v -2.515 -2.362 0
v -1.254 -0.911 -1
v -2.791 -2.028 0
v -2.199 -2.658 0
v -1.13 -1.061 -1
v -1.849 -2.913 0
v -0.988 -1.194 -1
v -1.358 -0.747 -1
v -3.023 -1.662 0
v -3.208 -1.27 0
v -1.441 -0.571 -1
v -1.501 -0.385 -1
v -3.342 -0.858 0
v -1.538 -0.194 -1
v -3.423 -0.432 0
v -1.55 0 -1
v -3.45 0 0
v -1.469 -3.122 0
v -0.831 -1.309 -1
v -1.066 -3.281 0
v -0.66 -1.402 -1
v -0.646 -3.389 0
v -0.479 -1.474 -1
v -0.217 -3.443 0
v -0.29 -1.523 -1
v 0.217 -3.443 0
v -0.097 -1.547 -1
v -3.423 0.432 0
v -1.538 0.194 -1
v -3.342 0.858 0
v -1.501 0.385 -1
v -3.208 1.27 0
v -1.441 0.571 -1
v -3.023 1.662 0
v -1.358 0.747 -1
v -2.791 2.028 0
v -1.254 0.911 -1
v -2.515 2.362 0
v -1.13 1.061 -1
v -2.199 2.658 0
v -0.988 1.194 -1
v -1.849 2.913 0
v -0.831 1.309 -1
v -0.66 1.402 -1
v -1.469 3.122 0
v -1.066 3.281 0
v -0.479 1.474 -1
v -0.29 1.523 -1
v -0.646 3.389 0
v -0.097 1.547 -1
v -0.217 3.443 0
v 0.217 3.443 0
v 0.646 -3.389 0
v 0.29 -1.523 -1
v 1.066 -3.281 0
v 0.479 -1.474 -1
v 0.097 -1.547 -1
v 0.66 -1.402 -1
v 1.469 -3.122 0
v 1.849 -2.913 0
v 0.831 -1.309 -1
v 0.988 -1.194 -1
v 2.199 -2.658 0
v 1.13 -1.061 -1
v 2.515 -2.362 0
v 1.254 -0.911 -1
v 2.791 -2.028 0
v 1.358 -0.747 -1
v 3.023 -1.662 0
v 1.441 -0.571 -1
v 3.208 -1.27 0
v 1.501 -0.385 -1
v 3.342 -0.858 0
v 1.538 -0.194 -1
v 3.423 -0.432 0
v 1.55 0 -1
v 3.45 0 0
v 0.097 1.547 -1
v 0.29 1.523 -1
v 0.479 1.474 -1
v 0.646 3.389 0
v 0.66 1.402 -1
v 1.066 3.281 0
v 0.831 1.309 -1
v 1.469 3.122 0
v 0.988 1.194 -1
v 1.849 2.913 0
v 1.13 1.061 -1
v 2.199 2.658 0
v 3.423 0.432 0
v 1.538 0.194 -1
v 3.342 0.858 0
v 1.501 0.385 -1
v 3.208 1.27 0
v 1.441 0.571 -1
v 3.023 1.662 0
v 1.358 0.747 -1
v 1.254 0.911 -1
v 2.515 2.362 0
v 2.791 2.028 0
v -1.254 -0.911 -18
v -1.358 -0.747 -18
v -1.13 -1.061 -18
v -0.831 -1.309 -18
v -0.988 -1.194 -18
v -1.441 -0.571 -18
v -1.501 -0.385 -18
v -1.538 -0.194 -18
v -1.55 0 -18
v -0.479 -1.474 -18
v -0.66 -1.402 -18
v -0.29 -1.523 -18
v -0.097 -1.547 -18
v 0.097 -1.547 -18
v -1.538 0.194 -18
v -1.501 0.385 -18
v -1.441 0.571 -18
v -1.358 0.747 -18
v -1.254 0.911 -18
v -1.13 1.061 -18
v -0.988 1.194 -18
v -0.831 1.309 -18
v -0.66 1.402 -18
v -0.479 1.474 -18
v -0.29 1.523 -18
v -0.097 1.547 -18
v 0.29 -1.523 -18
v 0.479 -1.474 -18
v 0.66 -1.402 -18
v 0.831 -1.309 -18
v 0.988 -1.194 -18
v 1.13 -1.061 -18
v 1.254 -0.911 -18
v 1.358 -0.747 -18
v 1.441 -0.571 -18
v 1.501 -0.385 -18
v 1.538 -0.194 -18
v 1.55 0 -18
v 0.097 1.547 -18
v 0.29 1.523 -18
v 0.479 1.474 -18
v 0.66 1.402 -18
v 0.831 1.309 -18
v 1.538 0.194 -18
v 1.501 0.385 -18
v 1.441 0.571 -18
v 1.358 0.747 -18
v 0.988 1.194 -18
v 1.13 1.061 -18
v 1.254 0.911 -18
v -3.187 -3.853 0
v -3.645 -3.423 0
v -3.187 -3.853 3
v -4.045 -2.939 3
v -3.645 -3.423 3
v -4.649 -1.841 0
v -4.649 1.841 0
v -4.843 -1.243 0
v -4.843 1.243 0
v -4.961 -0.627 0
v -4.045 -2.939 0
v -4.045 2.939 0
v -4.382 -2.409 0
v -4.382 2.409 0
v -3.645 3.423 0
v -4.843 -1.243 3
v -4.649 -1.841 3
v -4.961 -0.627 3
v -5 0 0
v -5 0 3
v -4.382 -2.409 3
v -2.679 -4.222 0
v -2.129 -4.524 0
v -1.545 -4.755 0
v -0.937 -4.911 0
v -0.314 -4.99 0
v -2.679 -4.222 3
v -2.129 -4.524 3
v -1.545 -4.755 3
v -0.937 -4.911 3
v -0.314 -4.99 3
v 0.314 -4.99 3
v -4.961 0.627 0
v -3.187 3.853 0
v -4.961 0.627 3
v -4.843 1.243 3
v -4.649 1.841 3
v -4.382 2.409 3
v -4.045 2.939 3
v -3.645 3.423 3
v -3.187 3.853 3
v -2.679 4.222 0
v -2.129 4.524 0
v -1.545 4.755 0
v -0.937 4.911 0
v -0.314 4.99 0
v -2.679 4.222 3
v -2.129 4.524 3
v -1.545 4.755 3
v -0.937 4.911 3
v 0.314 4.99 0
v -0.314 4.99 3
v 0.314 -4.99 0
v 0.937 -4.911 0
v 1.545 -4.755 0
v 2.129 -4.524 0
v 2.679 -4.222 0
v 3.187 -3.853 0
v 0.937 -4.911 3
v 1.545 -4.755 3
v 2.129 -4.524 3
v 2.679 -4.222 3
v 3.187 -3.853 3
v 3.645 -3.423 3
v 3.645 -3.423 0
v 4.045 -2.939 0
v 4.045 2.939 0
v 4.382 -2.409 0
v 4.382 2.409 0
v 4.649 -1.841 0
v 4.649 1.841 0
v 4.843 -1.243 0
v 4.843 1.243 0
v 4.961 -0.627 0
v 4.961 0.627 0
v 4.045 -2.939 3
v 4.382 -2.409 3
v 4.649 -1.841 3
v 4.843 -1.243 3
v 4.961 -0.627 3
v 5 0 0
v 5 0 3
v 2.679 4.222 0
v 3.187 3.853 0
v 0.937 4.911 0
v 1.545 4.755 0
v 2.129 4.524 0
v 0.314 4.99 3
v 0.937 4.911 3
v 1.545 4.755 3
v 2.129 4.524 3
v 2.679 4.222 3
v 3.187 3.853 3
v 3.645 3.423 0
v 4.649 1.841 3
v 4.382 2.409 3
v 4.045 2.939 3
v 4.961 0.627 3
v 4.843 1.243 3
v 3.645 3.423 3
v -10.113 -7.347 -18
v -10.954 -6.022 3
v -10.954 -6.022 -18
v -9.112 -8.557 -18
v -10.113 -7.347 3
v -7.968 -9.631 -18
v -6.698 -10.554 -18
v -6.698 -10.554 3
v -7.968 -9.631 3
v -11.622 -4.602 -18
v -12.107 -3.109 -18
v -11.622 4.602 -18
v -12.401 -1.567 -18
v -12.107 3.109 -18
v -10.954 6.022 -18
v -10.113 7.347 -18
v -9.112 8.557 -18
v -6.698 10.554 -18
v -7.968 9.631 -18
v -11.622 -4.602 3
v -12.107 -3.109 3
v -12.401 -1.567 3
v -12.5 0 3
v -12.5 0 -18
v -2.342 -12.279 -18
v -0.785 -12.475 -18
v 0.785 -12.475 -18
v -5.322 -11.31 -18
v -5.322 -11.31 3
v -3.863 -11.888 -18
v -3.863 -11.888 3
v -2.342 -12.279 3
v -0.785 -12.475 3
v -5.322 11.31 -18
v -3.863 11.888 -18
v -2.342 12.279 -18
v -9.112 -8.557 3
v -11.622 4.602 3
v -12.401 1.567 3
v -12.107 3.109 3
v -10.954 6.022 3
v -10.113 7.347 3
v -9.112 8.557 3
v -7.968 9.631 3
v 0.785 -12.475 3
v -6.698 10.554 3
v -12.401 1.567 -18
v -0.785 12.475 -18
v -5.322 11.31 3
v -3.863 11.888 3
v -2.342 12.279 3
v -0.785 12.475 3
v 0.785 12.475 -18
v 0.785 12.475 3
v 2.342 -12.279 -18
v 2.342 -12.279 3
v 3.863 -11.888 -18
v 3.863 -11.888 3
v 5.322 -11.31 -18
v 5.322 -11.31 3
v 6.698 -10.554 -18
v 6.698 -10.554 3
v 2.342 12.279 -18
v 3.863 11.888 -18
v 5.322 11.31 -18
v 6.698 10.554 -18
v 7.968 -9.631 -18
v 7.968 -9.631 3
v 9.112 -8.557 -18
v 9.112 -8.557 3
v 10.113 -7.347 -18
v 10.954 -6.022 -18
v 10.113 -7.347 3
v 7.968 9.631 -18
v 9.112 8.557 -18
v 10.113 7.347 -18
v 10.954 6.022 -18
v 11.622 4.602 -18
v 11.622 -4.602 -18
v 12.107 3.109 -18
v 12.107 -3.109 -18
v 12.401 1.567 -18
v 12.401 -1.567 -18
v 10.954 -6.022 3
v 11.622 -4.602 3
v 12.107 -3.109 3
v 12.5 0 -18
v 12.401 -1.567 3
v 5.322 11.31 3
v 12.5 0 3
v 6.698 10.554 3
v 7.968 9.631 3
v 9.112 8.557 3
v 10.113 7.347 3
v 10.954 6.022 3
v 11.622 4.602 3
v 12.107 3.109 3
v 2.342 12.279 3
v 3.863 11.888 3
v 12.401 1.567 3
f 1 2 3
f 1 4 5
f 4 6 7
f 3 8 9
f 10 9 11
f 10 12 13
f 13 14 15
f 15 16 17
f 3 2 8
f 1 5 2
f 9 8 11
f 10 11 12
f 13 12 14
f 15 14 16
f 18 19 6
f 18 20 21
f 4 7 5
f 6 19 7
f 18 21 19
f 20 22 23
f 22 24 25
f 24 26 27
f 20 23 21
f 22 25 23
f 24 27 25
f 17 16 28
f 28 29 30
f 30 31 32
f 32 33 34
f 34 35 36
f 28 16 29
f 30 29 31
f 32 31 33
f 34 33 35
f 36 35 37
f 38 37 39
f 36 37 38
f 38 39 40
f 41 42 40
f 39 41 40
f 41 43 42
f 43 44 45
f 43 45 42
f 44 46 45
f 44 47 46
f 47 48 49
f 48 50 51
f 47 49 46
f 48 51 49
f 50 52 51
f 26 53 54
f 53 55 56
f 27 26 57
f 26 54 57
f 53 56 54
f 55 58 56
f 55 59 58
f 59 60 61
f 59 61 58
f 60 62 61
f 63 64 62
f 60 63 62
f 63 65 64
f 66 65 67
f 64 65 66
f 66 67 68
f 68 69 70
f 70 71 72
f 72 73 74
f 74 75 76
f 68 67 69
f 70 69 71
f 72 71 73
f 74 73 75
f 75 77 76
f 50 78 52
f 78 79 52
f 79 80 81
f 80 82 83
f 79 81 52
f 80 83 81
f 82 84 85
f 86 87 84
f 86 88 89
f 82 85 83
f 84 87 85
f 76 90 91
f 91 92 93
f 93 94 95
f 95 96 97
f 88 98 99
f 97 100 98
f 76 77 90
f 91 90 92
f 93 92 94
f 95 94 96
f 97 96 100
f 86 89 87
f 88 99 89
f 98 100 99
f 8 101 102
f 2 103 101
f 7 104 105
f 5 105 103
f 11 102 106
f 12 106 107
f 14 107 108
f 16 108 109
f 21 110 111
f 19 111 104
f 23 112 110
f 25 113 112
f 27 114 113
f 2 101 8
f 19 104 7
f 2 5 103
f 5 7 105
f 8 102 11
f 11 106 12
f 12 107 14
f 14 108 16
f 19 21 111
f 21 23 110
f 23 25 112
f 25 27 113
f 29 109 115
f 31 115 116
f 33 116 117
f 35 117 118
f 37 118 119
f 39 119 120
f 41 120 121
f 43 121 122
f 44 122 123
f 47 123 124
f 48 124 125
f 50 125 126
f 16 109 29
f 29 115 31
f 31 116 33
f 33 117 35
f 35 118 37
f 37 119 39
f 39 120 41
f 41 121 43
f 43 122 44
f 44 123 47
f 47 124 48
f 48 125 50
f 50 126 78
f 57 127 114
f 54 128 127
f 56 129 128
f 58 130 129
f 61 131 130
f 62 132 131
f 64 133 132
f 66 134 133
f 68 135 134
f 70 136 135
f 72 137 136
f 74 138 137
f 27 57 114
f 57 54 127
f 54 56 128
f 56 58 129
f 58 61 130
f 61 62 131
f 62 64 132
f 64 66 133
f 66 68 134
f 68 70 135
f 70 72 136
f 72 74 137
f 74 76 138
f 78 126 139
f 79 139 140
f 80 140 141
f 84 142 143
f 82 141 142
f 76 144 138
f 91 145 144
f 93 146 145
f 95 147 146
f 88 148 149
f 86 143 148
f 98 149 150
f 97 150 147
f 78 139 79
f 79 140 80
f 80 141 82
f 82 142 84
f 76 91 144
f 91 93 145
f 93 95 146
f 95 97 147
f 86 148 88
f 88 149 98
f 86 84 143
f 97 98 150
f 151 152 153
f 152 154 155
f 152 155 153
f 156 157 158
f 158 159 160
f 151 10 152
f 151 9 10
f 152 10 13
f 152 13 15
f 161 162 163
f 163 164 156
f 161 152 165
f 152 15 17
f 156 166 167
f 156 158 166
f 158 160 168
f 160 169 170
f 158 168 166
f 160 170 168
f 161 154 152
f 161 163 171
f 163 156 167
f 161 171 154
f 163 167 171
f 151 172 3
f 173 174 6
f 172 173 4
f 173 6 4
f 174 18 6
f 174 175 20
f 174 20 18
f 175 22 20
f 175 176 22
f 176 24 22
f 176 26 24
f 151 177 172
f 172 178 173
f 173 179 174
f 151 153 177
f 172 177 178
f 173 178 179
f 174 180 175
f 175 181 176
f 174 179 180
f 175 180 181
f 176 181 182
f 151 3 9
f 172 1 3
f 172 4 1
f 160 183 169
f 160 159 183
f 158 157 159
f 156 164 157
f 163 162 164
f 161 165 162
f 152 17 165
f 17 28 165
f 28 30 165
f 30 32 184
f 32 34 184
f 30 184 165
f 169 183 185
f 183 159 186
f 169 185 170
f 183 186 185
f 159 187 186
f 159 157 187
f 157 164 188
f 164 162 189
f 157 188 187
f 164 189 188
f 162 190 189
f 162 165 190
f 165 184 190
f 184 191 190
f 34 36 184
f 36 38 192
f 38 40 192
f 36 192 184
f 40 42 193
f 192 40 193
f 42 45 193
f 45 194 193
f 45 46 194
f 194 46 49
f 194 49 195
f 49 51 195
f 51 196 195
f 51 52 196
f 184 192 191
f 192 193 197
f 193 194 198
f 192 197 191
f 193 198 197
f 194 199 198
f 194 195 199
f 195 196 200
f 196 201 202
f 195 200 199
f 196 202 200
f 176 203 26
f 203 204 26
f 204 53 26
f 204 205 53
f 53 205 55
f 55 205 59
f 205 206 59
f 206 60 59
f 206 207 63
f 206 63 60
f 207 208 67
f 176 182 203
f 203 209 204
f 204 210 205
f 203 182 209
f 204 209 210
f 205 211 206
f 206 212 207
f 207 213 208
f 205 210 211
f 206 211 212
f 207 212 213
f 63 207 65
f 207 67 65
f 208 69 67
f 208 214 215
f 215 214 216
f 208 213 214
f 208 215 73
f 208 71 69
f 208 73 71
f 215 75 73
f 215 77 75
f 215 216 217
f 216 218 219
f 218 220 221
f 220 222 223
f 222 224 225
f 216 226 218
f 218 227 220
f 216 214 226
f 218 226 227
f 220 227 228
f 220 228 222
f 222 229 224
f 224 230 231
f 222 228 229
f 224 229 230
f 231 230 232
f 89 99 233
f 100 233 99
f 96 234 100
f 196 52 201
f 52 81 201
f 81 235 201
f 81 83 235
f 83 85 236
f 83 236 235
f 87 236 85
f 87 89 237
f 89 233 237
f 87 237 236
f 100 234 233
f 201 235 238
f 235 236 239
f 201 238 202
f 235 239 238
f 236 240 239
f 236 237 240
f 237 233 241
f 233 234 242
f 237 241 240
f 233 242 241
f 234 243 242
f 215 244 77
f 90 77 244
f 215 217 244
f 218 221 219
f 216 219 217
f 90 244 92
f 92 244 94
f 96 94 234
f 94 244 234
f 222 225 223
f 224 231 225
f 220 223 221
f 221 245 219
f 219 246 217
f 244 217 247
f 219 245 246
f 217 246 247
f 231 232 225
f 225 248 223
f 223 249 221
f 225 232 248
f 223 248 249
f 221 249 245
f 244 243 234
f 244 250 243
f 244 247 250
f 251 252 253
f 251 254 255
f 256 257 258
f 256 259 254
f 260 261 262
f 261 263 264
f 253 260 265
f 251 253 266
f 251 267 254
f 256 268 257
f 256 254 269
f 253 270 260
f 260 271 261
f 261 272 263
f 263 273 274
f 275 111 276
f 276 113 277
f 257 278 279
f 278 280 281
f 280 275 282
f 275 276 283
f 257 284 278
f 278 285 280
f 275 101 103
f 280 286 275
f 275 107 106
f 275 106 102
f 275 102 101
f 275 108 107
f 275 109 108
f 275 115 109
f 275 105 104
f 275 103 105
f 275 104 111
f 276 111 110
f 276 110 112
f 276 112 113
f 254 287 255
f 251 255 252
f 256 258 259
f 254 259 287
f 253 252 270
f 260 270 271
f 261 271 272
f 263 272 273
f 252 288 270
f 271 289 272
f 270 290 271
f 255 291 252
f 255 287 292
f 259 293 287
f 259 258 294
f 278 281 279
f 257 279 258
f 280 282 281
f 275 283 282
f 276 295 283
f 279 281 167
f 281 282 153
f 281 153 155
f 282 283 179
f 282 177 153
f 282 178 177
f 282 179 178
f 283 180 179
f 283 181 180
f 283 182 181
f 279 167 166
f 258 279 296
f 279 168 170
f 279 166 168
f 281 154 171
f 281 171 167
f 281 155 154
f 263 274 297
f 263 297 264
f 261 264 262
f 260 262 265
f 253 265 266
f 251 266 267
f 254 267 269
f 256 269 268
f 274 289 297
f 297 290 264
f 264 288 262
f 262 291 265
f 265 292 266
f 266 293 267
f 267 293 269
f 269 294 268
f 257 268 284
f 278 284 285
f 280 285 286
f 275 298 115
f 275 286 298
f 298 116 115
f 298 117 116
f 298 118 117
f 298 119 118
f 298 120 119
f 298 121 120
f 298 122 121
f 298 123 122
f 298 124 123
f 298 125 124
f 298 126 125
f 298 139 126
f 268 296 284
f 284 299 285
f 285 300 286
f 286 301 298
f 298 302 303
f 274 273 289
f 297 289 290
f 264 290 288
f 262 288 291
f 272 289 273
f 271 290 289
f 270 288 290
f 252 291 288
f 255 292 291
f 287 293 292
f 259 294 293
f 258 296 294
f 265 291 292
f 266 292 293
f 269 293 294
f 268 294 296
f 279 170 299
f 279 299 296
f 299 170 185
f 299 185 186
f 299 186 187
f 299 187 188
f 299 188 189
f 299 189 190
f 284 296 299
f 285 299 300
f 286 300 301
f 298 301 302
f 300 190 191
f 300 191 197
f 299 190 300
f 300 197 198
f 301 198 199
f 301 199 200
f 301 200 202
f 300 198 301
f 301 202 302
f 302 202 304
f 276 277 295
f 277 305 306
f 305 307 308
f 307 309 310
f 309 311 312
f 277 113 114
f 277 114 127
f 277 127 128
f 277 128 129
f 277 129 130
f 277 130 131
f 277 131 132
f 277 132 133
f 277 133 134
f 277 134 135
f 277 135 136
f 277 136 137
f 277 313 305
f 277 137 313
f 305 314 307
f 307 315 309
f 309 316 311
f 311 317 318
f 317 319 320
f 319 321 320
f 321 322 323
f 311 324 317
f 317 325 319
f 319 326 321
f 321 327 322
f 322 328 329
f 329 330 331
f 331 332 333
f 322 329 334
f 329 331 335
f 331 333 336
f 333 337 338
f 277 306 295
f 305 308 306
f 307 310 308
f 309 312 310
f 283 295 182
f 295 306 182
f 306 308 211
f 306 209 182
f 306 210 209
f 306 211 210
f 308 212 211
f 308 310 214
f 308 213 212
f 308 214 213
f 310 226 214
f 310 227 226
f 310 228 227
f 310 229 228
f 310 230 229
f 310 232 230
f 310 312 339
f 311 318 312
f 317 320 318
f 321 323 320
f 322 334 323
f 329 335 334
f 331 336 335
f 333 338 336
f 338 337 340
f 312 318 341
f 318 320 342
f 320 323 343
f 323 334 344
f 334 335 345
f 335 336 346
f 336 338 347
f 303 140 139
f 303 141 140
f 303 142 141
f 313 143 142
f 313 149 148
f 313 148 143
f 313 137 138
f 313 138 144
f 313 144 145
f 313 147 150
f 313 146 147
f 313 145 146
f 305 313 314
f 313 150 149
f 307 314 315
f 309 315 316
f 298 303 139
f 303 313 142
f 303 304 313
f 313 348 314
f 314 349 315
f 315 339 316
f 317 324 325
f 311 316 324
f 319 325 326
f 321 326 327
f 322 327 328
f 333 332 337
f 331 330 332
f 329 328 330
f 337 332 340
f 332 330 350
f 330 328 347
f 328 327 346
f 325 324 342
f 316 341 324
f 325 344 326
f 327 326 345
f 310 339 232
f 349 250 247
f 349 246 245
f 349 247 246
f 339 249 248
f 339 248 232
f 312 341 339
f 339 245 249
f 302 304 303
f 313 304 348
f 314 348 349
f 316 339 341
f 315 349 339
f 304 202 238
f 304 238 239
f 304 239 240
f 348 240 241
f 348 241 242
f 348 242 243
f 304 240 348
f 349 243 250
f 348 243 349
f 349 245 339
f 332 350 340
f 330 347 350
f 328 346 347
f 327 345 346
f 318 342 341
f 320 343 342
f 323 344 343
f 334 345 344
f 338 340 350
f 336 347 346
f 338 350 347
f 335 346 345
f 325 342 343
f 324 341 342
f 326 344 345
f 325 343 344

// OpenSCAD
$fn = 50;

difference() {
	union() {
		translate(v = [0, 0, -18.0]) {
			cylinder(h = 21, r = 12.5);
		}
	}
	union() {
		translate(v = [0, 0, 0]) {
			rotate(a = [0, 0, 0]) {
				difference() {
					union() {
						translate(v = [0, 0, -21.0]) {
							cylinder(h = 21, r = 1.25);
						}
						translate(v = [0, 0, -1.0]) {
							cylinder(h = 1.0, r1 = 1.55, r2 = 3.45);
						}
						translate(v = [0, 0, -21.0]) {
							cylinder(h = 21, r = 1.55);
						}
						translate(v = [0, 0, -21.0]) {
							cylinder(h = 21, r = 1.25);
						}
					}
					union();
				}
			}
		}
		#cylinder(h = 3, r = 5.0);
	}
}
